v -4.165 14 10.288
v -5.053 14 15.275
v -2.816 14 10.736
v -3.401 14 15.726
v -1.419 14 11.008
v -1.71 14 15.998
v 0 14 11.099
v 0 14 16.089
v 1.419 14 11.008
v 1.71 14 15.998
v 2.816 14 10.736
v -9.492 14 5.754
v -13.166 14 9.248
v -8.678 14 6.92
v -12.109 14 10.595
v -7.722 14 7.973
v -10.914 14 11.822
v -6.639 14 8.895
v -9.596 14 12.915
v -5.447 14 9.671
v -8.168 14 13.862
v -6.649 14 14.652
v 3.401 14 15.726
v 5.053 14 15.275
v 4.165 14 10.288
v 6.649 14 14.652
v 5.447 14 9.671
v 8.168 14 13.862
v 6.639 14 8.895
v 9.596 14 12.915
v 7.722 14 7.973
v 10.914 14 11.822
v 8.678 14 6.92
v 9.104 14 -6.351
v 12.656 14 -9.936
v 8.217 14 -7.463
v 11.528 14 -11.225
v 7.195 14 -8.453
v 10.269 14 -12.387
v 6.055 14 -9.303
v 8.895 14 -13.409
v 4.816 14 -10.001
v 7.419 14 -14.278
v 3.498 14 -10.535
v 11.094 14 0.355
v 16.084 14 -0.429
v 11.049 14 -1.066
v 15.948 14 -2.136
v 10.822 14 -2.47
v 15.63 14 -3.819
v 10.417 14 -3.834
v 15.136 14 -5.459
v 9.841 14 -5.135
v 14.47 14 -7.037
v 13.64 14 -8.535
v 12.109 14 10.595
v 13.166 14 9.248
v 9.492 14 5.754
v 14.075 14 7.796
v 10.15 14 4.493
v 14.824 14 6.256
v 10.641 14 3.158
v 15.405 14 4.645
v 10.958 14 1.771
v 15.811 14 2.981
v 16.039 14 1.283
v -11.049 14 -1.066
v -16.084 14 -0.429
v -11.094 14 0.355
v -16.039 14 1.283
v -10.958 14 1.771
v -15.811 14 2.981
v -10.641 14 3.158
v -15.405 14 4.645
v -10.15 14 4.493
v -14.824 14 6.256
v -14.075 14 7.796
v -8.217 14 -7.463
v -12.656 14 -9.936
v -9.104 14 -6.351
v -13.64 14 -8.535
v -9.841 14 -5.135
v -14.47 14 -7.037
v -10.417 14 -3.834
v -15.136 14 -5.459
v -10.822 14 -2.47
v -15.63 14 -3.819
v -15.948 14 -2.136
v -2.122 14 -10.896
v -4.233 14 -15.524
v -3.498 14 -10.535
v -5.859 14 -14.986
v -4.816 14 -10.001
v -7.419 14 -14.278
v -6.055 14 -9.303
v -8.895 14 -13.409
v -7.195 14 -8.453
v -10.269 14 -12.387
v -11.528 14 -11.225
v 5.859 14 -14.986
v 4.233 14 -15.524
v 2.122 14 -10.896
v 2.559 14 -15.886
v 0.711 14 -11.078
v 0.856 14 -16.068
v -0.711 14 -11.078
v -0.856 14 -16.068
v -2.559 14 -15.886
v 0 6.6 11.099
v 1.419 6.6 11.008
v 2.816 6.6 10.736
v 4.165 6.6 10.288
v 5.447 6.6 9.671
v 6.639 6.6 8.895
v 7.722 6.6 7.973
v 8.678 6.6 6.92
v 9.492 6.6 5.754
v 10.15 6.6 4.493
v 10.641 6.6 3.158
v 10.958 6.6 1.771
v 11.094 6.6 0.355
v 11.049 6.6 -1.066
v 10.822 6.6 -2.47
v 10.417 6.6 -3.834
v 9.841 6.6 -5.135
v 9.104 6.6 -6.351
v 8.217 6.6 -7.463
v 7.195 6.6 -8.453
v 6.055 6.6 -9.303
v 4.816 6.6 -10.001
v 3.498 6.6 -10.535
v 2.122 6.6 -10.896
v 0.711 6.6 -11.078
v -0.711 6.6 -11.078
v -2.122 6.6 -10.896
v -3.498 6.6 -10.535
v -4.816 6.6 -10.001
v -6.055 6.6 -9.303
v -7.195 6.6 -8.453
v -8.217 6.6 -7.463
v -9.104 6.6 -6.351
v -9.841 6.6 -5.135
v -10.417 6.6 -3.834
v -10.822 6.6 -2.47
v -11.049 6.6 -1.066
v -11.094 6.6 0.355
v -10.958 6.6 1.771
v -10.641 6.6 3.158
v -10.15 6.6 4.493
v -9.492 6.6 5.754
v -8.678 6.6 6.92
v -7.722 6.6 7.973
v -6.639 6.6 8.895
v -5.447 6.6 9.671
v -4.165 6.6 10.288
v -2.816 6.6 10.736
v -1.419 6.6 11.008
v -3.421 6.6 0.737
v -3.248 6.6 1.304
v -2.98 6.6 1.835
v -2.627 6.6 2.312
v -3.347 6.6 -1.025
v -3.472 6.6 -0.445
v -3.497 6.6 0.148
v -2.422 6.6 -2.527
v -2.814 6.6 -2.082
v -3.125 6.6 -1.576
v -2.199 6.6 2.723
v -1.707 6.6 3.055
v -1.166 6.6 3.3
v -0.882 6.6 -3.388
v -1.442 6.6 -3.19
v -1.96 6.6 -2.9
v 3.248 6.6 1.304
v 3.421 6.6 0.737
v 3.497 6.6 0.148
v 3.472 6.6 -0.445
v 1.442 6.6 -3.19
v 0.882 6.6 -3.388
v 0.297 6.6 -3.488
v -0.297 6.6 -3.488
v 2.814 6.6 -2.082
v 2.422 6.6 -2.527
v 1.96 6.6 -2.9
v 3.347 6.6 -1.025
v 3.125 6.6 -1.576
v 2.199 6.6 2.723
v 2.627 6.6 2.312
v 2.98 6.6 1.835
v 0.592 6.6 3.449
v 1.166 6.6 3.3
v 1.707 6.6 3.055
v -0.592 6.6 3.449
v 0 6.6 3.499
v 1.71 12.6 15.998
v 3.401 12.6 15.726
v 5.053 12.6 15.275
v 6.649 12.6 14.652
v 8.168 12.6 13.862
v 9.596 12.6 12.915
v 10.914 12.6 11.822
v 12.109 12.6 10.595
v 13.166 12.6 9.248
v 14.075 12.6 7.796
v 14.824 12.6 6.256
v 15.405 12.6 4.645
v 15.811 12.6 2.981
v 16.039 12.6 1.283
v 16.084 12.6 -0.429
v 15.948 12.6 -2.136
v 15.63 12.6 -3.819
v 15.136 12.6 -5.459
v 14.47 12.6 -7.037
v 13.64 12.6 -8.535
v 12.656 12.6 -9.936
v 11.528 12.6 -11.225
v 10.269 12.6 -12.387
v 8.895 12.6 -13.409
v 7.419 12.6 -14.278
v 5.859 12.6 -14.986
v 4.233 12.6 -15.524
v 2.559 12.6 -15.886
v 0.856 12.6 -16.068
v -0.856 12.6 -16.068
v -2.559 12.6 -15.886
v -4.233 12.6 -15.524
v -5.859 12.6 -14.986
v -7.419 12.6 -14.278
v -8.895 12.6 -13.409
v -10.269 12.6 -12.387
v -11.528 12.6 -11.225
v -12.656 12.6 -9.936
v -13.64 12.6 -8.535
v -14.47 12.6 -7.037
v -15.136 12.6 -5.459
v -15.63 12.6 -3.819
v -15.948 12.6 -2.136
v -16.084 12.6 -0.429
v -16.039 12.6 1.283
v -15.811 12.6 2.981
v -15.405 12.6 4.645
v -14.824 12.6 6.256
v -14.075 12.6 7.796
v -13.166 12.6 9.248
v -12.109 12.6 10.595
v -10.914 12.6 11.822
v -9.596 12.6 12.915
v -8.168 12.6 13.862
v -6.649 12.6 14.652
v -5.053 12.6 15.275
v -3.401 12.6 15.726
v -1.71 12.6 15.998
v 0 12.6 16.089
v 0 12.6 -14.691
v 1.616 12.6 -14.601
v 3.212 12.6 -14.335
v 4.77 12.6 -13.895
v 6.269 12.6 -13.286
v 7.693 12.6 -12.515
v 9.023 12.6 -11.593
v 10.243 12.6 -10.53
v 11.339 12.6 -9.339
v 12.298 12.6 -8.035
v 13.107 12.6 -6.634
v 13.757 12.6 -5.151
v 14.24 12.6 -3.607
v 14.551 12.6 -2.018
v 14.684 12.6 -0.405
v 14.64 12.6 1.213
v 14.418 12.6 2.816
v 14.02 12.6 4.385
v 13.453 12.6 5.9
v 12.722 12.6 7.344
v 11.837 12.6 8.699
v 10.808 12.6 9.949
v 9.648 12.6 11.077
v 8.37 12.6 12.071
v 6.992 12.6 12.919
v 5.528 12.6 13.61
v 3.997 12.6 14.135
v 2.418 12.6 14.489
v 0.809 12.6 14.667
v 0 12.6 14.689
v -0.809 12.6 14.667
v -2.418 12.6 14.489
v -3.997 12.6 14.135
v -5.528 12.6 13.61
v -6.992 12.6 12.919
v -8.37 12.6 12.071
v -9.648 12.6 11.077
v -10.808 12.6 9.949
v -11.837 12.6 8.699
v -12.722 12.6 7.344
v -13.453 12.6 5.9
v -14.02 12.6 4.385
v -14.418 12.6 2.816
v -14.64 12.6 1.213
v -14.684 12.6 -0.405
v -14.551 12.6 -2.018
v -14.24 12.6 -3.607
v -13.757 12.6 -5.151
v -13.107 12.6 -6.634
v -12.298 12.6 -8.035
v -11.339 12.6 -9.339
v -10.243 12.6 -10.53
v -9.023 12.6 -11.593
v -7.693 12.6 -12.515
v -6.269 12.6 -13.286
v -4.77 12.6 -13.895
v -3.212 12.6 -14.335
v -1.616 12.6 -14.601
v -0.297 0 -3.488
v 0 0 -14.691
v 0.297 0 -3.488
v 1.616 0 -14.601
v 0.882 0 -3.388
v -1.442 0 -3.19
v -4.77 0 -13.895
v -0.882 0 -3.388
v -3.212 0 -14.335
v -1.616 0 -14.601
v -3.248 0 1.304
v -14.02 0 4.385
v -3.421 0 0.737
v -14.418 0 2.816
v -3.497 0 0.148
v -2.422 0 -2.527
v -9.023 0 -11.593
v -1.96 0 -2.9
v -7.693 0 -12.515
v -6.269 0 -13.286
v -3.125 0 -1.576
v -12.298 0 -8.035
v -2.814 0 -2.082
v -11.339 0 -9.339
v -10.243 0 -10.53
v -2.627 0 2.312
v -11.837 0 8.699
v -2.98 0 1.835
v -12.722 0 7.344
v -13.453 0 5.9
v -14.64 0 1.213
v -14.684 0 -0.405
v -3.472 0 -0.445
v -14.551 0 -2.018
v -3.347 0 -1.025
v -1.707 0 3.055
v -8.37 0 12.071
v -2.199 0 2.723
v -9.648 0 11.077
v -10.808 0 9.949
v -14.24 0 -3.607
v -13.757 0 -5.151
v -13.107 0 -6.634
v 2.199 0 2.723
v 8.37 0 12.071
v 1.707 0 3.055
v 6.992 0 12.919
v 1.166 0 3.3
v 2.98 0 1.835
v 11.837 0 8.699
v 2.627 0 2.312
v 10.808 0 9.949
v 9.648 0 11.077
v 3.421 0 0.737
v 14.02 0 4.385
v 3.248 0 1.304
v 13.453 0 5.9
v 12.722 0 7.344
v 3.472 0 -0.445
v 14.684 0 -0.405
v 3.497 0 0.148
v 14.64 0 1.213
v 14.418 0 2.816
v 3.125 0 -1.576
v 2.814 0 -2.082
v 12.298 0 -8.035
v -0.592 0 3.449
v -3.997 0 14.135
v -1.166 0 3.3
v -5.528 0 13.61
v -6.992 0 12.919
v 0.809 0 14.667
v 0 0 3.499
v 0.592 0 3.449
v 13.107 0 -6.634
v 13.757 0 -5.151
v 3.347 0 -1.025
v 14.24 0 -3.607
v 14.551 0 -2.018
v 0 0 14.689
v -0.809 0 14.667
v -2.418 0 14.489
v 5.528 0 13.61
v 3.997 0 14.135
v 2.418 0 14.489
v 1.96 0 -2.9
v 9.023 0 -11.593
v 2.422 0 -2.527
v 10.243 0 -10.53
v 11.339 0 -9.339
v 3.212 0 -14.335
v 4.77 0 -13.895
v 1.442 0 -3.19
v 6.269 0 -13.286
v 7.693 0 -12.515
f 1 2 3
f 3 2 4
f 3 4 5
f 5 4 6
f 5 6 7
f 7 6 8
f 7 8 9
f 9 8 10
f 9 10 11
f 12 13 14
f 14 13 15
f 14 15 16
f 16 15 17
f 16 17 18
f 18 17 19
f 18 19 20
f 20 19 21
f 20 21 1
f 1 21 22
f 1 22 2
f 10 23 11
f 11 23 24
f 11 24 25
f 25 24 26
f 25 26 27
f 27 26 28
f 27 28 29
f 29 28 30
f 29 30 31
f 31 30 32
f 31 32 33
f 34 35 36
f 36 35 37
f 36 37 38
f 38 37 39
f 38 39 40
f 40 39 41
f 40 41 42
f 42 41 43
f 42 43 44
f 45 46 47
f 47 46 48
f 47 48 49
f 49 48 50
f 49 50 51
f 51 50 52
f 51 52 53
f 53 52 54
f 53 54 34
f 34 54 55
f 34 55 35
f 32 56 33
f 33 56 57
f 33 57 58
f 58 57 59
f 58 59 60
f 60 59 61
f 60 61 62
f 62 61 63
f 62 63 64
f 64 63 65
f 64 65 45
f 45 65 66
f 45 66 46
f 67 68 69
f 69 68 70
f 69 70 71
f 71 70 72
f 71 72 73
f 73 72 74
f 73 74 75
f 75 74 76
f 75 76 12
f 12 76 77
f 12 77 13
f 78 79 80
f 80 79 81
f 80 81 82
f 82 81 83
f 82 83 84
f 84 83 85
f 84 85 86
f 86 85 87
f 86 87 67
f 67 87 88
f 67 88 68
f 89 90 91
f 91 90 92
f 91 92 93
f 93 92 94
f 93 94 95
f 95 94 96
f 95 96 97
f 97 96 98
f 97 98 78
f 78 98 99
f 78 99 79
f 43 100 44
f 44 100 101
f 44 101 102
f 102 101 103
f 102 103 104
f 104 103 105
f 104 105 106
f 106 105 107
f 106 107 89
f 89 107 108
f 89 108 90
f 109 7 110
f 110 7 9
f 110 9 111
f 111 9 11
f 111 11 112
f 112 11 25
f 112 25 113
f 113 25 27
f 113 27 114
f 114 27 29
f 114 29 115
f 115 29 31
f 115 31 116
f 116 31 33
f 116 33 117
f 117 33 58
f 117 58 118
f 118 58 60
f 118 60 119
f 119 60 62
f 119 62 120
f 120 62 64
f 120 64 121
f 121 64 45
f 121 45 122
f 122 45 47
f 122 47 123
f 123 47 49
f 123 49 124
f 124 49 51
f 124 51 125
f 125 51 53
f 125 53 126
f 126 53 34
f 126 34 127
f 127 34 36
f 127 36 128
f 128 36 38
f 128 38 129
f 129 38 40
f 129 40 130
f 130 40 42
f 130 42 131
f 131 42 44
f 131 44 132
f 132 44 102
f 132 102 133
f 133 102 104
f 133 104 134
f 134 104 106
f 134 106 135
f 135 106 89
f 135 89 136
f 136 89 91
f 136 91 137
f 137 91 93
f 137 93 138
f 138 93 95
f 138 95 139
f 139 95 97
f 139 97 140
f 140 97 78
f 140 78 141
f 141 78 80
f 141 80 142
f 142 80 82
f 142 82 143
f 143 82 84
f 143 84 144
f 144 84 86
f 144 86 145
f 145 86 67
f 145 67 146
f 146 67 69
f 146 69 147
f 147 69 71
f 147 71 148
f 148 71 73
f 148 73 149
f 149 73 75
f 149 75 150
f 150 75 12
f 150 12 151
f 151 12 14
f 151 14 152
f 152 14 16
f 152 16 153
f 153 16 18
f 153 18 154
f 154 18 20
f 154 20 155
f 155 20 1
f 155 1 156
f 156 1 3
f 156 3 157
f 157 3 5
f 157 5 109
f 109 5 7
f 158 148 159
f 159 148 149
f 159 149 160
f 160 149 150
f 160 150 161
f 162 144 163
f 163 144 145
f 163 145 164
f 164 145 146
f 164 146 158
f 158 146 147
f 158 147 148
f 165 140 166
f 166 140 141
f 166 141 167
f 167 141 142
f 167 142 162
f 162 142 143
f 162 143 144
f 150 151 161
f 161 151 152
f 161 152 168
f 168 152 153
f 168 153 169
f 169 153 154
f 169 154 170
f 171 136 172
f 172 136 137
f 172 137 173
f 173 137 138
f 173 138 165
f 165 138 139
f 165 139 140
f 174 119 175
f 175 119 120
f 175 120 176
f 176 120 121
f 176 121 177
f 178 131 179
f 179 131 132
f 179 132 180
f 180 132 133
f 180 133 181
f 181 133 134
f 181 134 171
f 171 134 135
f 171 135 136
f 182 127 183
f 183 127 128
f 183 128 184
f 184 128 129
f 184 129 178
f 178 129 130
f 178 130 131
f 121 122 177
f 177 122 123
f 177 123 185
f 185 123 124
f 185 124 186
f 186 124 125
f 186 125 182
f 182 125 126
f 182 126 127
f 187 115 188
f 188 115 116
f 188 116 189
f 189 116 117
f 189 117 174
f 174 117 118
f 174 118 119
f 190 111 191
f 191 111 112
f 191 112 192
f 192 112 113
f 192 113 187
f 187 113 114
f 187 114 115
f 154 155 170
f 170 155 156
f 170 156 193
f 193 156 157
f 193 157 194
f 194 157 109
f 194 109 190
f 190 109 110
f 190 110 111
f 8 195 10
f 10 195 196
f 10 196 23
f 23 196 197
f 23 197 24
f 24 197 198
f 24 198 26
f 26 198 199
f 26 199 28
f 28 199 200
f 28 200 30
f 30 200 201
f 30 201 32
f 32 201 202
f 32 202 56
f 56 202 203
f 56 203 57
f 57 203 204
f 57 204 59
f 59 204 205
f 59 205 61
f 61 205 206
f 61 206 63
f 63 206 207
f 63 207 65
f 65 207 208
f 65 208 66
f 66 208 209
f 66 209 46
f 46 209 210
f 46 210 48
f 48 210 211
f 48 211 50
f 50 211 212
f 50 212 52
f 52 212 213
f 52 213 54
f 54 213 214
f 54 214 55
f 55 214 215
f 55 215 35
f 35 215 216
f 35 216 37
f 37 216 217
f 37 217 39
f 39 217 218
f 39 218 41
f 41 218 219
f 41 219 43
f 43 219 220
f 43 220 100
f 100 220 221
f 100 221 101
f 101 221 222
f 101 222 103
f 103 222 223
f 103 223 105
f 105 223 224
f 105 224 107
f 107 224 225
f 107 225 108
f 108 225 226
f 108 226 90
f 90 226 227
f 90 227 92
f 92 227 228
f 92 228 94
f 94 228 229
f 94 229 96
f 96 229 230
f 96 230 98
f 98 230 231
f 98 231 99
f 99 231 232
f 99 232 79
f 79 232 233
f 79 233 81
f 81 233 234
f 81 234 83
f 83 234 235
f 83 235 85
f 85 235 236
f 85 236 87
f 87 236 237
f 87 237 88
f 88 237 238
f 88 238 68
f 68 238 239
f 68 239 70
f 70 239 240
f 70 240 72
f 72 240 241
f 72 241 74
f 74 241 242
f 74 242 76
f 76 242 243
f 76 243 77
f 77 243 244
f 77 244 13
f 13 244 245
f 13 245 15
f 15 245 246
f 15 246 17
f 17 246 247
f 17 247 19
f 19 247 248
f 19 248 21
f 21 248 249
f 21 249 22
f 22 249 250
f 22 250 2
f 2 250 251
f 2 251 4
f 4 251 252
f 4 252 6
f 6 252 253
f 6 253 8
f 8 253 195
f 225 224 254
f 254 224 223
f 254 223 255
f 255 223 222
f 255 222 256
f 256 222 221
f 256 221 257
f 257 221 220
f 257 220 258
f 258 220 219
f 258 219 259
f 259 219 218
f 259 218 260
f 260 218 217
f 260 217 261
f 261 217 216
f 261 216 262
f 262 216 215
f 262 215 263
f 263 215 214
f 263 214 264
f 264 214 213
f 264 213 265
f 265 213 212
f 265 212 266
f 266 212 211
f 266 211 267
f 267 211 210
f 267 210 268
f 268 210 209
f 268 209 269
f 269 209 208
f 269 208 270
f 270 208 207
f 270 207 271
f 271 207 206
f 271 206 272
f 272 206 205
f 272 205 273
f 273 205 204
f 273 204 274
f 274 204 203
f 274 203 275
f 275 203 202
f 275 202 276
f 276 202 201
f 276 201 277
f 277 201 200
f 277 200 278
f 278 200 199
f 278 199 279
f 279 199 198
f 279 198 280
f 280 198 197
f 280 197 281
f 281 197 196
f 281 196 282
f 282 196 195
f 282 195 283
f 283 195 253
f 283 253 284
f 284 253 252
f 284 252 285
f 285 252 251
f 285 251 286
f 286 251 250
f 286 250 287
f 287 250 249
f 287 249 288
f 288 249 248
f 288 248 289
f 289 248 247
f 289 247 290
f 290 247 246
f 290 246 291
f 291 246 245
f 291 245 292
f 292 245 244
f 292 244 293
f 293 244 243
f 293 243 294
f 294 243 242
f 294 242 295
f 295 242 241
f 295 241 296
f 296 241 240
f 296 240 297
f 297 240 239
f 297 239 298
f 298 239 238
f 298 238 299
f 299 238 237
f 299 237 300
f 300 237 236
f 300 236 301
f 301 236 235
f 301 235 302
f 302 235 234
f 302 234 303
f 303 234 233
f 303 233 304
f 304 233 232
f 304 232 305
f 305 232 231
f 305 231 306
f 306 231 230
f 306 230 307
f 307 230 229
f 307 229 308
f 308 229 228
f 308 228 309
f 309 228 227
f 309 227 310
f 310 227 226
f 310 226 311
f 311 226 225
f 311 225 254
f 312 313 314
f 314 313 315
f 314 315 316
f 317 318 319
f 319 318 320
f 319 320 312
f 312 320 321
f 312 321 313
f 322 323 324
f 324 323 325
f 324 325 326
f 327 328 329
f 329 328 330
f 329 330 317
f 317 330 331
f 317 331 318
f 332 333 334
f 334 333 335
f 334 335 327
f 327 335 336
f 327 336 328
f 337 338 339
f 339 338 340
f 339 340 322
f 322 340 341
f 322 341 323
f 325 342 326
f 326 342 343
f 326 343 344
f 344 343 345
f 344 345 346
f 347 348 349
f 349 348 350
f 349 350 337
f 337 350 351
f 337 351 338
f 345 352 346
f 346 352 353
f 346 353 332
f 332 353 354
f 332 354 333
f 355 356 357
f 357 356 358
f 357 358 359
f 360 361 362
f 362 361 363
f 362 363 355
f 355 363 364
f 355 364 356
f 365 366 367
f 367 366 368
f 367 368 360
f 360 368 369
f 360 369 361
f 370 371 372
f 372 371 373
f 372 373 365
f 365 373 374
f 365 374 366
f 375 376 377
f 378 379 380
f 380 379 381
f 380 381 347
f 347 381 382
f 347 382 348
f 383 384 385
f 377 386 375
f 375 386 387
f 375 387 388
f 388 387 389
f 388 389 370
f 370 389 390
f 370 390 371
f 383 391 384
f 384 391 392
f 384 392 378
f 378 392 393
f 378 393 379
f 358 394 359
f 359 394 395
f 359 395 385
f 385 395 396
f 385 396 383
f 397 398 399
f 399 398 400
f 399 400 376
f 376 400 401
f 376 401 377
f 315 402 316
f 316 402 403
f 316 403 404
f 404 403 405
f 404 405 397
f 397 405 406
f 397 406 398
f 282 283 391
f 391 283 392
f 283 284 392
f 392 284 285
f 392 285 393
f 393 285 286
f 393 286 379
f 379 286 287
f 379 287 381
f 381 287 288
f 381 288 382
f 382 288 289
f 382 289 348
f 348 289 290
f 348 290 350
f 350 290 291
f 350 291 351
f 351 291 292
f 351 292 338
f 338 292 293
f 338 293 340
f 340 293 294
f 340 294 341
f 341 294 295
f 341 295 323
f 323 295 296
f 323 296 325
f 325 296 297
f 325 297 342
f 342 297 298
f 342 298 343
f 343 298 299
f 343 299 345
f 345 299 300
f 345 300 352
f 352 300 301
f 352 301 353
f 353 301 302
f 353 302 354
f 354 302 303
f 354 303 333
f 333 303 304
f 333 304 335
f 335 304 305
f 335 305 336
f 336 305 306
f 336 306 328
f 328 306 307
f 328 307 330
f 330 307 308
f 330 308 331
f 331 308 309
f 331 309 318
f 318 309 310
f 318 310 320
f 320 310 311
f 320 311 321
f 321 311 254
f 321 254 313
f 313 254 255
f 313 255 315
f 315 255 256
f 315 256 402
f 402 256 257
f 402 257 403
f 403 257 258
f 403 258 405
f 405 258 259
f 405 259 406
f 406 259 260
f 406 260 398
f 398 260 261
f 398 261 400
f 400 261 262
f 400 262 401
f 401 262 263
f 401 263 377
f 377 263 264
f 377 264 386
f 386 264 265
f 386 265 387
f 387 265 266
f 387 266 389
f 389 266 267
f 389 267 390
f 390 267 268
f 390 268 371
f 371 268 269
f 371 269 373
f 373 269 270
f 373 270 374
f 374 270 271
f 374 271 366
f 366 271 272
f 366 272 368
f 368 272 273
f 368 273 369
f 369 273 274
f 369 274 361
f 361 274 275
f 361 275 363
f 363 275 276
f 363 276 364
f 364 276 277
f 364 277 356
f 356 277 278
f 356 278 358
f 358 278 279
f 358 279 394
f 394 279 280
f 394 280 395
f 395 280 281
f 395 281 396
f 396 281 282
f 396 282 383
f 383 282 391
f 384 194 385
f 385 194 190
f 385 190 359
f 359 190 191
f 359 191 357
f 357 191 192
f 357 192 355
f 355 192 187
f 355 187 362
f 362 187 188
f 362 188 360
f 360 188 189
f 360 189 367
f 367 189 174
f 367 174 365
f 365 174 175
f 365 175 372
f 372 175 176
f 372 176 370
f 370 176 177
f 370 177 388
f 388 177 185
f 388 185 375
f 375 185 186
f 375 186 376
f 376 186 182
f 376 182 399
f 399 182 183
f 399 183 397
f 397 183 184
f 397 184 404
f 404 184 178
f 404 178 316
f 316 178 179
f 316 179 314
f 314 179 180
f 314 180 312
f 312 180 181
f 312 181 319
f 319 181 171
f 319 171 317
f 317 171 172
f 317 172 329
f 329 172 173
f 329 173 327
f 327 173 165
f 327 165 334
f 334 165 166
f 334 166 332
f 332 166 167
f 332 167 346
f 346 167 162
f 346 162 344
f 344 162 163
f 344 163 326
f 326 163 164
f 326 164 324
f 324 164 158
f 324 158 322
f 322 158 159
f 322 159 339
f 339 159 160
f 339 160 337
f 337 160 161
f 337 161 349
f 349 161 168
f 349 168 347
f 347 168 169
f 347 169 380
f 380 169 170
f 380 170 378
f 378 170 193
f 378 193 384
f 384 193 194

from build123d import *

# Parameters (mm, degrees)
SKETCH1_R           = 14.69
BOSS_EXTRUDE1_DEPTH = 14
SKETCH2_R           = 11.1
CUT_EXTRUDE1_DEPTH  = 7.4
SKETCH3_R           = 16.09
SKETCH3_R_2         = 14.69
BOSS_EXTRUDE2_DEPTH = 1.4
SKETCH4_R           = 3.5
CUT_EXTRUDE2_DEPTH  = 7.6


with BuildPart() as part:
    # Sketch1 → Boss-Extrude1 (new body)
    with BuildSketch(Plane(origin=(0, 0, 0), x_dir=(1, 0, 0), z_dir=(0, 1, 0))):
        Circle(SKETCH1_R)
    extrude(amount=BOSS_EXTRUDE1_DEPTH)

    # Sketch2 → Cut-Extrude1 (cut)
    with BuildSketch(Plane(origin=(0, 14, 0), x_dir=(1, 0, 0), z_dir=(0, 1, 0))):
        Circle(SKETCH2_R)
    extrude(amount=-CUT_EXTRUDE1_DEPTH, mode=Mode.SUBTRACT)

    # Sketch3 → Boss-Extrude2 (add)
    with BuildSketch(Plane(origin=(0, 14, 0), x_dir=(1, 0, 0), z_dir=(0, 1, 0))):
        Circle(SKETCH3_R)
        Circle(SKETCH3_R_2, mode=Mode.SUBTRACT)
    extrude(amount=-BOSS_EXTRUDE2_DEPTH)

    # Sketch4 → Cut-Extrude2 (cut, through all)
    with BuildSketch(Plane(origin=(0, 6.6, 0), x_dir=(1, 0, 0), z_dir=(0, 1, 0))):
        Circle(SKETCH4_R)
    extrude(amount=-CUT_EXTRUDE2_DEPTH, mode=Mode.SUBTRACT)


solid = part.part
